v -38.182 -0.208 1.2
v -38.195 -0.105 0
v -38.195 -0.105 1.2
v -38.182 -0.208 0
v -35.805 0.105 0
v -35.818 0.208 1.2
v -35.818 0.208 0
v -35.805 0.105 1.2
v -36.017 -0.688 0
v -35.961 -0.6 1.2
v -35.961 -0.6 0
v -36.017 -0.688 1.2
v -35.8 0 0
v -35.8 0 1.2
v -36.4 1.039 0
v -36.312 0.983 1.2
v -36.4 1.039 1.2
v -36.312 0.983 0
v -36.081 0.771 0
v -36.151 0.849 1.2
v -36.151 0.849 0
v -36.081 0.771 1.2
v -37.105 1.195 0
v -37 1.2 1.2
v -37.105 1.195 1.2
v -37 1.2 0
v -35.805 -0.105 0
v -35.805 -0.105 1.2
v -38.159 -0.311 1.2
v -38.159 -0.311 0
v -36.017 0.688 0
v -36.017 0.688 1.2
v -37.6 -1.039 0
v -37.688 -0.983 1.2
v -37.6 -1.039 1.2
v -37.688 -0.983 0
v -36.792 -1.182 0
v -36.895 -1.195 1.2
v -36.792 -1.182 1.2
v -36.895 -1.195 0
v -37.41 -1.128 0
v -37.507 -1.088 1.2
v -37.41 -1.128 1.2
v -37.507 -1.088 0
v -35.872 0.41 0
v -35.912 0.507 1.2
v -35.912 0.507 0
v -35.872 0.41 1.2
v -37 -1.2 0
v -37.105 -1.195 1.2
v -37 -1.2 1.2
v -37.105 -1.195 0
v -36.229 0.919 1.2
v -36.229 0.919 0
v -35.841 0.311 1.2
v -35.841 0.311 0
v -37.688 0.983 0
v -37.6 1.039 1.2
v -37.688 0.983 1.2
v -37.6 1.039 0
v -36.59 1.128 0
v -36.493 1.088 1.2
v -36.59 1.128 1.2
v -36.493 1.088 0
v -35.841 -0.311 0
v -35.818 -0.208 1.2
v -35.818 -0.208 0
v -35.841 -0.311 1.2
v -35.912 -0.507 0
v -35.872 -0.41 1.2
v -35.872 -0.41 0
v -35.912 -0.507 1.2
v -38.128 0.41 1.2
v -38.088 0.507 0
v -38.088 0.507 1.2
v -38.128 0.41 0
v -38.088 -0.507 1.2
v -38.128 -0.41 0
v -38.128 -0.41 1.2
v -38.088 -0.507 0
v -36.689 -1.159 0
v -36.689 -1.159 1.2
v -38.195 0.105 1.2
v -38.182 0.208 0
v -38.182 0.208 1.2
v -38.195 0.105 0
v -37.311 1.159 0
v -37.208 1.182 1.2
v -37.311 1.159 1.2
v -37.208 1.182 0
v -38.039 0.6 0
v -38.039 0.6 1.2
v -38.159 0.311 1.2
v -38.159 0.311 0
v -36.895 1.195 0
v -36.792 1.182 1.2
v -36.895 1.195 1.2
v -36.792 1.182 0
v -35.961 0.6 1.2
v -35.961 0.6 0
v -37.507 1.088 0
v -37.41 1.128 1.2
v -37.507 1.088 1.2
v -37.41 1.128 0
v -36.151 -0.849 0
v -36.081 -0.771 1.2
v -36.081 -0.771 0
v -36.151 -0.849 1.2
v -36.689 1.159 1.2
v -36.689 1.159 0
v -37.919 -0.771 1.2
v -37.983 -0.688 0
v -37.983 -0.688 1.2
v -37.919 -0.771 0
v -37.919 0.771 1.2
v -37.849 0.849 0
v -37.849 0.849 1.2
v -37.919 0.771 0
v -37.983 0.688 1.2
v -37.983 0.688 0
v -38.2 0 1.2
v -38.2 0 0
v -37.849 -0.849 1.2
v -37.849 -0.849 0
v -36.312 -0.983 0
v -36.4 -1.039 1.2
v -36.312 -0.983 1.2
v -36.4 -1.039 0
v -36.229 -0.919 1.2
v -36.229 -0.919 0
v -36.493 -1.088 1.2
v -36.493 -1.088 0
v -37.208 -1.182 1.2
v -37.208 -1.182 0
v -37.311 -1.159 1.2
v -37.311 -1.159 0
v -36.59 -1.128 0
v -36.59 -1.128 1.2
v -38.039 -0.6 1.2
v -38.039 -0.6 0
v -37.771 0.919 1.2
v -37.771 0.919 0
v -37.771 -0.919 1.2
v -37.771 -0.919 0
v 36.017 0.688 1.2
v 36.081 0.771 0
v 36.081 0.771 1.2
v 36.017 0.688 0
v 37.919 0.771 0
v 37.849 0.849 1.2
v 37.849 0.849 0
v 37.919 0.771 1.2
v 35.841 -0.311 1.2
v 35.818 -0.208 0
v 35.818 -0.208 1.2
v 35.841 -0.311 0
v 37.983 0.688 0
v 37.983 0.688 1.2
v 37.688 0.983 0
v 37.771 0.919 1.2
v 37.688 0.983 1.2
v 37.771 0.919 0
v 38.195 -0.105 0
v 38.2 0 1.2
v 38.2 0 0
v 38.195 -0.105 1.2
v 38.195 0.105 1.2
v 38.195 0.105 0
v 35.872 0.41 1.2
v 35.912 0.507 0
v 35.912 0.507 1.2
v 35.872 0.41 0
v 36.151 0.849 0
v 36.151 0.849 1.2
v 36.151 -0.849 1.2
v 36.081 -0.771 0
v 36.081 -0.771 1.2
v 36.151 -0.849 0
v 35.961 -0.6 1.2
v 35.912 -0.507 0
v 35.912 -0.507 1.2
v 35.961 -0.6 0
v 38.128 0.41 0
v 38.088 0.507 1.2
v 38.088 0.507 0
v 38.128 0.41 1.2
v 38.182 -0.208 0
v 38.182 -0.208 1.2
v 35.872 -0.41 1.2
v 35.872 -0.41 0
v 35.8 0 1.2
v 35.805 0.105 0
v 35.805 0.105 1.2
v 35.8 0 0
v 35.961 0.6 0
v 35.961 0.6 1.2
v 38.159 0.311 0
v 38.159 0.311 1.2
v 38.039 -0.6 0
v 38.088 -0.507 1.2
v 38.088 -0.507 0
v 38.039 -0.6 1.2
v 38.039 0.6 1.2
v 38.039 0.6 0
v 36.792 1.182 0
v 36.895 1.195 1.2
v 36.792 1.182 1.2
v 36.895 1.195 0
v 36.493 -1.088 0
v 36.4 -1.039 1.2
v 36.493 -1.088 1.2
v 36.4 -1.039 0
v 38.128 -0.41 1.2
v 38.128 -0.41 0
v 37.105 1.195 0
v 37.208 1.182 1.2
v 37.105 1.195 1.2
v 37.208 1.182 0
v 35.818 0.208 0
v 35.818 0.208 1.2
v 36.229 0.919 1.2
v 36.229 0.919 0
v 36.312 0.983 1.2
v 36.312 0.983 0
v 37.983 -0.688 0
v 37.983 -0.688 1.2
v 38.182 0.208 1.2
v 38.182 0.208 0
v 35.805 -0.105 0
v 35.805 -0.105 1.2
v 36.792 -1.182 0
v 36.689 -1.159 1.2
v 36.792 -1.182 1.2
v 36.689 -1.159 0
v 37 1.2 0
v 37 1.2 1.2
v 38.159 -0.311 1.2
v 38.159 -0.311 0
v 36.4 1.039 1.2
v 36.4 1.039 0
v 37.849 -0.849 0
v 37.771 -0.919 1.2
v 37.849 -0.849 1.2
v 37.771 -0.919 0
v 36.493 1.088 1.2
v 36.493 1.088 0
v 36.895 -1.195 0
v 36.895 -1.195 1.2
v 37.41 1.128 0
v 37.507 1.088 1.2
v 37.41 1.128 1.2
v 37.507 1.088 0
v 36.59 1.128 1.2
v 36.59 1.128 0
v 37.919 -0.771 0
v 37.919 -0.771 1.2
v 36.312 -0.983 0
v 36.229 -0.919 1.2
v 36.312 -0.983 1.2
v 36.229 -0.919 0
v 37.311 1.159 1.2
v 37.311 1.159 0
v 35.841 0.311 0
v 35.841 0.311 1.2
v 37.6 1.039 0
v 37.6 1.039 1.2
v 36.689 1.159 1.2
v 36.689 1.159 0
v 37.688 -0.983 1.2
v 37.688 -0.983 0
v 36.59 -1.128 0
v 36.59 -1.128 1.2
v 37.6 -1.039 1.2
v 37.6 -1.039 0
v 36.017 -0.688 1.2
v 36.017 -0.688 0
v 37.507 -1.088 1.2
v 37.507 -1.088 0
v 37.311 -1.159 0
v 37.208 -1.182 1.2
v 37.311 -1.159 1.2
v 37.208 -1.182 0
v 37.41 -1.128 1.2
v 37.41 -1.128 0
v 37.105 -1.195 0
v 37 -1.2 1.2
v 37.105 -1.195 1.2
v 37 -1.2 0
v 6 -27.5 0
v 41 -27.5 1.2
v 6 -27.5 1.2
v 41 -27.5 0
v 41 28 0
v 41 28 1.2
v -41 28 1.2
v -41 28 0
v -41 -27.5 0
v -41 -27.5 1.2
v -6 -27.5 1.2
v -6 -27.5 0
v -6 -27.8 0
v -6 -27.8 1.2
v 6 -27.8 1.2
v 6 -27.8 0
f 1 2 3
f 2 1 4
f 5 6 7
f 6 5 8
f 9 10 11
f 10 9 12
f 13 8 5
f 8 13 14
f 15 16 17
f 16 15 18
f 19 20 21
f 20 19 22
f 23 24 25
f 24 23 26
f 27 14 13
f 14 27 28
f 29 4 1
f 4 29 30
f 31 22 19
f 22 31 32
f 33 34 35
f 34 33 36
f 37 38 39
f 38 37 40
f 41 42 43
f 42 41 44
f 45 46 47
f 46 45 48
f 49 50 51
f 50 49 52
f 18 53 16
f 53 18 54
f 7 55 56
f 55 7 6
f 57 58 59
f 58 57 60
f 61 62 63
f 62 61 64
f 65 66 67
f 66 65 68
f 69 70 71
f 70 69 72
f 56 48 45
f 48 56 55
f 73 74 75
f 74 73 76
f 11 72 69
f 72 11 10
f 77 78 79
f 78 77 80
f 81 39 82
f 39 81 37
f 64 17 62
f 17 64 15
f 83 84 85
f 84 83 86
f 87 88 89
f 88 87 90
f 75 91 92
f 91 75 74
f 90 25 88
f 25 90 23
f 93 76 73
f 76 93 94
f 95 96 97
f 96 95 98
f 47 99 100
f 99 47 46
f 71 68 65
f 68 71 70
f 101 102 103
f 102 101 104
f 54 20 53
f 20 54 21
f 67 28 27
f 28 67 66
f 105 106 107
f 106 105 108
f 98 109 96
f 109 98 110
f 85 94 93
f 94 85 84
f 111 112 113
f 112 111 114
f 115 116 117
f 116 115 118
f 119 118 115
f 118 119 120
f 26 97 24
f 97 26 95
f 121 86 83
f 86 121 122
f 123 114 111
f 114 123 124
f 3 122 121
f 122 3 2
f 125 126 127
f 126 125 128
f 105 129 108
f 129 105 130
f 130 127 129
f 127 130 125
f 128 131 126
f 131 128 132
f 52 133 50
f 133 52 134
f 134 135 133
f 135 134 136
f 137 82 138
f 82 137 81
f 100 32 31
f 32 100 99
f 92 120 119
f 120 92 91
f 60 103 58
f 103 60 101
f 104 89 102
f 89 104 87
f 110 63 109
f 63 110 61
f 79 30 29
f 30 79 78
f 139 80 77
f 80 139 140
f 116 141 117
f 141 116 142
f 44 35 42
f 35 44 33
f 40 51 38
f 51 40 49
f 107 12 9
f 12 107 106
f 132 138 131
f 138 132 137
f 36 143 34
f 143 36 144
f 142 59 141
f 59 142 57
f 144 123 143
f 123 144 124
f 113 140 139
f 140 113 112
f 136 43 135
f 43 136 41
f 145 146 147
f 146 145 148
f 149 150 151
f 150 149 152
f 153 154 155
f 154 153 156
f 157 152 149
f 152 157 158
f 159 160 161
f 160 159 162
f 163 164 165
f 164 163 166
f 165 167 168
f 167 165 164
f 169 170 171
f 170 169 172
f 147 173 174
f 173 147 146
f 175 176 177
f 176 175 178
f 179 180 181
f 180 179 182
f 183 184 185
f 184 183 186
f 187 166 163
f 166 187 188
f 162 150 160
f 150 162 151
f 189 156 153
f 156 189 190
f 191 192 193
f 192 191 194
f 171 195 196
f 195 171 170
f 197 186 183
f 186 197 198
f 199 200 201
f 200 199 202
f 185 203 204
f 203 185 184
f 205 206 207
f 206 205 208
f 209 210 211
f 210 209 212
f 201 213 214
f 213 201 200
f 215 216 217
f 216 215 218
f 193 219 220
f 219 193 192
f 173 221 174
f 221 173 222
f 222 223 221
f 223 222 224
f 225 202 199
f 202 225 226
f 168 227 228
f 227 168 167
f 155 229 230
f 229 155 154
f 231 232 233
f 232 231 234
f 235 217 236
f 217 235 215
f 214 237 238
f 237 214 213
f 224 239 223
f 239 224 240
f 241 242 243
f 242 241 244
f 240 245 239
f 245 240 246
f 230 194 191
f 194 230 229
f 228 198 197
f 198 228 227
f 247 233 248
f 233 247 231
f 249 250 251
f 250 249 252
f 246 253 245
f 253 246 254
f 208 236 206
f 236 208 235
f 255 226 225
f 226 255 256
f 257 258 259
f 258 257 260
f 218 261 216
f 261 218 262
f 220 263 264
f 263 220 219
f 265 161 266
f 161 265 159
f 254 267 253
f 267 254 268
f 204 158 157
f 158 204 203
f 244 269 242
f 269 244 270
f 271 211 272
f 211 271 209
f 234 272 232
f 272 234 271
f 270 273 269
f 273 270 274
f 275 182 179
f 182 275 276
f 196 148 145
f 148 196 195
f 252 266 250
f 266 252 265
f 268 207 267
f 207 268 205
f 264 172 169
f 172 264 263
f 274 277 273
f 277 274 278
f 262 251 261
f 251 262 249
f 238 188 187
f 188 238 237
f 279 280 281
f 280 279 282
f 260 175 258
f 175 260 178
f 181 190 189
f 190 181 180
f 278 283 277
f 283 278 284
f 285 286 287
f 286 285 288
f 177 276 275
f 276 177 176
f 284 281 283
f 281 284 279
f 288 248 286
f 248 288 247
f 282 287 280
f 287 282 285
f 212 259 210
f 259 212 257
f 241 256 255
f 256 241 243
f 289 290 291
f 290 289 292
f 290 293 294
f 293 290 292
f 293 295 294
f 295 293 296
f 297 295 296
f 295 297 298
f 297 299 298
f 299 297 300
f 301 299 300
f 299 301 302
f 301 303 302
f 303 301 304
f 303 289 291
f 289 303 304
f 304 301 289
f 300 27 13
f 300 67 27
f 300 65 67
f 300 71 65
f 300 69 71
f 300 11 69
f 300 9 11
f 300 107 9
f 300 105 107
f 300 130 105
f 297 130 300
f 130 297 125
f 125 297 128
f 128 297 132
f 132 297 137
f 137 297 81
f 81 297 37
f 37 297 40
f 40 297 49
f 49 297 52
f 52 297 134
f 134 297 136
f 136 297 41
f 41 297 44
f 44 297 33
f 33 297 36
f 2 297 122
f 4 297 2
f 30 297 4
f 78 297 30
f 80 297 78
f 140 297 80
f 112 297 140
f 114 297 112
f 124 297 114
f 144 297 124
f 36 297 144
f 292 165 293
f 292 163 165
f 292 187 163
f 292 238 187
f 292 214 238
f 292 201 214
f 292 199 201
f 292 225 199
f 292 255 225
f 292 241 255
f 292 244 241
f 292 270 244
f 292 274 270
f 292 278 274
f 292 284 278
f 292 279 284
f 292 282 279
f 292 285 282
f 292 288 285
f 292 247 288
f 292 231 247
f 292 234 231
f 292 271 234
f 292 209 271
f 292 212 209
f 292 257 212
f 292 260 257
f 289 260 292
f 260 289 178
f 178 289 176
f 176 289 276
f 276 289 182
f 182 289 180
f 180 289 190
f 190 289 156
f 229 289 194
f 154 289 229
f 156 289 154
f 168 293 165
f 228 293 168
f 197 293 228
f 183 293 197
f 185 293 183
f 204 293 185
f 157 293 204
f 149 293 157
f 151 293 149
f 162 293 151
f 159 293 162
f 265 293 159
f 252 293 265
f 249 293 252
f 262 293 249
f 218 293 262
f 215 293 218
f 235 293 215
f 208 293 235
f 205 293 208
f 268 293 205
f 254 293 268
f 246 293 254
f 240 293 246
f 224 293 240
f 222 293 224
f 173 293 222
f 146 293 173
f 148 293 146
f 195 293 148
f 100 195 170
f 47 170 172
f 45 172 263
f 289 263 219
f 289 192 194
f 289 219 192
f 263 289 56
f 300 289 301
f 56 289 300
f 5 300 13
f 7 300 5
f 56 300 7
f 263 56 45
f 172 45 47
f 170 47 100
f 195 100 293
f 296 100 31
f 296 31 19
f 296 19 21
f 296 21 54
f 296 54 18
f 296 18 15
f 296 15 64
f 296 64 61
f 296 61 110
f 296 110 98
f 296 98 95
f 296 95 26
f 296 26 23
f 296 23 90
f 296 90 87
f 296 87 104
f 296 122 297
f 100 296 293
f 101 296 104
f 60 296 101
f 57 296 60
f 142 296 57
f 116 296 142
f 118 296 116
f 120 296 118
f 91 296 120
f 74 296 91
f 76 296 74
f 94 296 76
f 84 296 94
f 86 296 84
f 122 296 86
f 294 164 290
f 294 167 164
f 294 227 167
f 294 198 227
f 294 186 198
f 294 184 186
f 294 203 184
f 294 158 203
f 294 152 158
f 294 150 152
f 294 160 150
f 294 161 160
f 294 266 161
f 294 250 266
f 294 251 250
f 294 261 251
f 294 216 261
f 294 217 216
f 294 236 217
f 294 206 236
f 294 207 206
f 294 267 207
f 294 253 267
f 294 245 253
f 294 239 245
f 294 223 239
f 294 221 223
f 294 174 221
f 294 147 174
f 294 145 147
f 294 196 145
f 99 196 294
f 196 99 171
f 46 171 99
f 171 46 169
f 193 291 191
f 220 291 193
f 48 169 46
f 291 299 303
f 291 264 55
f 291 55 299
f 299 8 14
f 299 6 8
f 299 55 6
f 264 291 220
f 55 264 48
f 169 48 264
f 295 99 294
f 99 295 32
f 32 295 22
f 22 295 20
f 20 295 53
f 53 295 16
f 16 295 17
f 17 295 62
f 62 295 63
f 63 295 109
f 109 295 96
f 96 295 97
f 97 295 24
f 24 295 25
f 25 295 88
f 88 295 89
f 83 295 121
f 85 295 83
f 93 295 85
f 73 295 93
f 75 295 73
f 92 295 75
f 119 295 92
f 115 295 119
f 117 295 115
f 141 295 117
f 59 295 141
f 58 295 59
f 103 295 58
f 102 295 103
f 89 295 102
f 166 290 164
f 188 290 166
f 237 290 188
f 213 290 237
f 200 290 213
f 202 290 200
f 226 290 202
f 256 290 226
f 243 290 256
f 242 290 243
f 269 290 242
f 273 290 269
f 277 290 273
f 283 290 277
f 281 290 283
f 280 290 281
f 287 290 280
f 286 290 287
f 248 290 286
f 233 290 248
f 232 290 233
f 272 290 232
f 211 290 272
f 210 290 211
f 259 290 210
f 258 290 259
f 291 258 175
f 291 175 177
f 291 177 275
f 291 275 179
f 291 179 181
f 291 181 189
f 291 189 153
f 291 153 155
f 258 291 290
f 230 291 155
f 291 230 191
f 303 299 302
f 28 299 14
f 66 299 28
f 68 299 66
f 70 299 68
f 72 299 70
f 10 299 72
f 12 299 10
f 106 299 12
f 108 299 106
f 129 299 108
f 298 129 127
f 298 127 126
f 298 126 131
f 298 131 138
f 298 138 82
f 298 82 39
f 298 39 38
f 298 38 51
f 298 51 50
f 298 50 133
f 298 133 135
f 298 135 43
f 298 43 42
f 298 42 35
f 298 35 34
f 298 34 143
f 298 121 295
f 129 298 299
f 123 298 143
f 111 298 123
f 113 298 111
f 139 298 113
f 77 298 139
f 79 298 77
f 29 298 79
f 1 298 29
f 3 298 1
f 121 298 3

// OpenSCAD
// Print only for checking the rigid PCB outline and screw positions.
// This plastic mockup is not an electronic PCB.
include <parts.scad>
aux_pcb_shape();
